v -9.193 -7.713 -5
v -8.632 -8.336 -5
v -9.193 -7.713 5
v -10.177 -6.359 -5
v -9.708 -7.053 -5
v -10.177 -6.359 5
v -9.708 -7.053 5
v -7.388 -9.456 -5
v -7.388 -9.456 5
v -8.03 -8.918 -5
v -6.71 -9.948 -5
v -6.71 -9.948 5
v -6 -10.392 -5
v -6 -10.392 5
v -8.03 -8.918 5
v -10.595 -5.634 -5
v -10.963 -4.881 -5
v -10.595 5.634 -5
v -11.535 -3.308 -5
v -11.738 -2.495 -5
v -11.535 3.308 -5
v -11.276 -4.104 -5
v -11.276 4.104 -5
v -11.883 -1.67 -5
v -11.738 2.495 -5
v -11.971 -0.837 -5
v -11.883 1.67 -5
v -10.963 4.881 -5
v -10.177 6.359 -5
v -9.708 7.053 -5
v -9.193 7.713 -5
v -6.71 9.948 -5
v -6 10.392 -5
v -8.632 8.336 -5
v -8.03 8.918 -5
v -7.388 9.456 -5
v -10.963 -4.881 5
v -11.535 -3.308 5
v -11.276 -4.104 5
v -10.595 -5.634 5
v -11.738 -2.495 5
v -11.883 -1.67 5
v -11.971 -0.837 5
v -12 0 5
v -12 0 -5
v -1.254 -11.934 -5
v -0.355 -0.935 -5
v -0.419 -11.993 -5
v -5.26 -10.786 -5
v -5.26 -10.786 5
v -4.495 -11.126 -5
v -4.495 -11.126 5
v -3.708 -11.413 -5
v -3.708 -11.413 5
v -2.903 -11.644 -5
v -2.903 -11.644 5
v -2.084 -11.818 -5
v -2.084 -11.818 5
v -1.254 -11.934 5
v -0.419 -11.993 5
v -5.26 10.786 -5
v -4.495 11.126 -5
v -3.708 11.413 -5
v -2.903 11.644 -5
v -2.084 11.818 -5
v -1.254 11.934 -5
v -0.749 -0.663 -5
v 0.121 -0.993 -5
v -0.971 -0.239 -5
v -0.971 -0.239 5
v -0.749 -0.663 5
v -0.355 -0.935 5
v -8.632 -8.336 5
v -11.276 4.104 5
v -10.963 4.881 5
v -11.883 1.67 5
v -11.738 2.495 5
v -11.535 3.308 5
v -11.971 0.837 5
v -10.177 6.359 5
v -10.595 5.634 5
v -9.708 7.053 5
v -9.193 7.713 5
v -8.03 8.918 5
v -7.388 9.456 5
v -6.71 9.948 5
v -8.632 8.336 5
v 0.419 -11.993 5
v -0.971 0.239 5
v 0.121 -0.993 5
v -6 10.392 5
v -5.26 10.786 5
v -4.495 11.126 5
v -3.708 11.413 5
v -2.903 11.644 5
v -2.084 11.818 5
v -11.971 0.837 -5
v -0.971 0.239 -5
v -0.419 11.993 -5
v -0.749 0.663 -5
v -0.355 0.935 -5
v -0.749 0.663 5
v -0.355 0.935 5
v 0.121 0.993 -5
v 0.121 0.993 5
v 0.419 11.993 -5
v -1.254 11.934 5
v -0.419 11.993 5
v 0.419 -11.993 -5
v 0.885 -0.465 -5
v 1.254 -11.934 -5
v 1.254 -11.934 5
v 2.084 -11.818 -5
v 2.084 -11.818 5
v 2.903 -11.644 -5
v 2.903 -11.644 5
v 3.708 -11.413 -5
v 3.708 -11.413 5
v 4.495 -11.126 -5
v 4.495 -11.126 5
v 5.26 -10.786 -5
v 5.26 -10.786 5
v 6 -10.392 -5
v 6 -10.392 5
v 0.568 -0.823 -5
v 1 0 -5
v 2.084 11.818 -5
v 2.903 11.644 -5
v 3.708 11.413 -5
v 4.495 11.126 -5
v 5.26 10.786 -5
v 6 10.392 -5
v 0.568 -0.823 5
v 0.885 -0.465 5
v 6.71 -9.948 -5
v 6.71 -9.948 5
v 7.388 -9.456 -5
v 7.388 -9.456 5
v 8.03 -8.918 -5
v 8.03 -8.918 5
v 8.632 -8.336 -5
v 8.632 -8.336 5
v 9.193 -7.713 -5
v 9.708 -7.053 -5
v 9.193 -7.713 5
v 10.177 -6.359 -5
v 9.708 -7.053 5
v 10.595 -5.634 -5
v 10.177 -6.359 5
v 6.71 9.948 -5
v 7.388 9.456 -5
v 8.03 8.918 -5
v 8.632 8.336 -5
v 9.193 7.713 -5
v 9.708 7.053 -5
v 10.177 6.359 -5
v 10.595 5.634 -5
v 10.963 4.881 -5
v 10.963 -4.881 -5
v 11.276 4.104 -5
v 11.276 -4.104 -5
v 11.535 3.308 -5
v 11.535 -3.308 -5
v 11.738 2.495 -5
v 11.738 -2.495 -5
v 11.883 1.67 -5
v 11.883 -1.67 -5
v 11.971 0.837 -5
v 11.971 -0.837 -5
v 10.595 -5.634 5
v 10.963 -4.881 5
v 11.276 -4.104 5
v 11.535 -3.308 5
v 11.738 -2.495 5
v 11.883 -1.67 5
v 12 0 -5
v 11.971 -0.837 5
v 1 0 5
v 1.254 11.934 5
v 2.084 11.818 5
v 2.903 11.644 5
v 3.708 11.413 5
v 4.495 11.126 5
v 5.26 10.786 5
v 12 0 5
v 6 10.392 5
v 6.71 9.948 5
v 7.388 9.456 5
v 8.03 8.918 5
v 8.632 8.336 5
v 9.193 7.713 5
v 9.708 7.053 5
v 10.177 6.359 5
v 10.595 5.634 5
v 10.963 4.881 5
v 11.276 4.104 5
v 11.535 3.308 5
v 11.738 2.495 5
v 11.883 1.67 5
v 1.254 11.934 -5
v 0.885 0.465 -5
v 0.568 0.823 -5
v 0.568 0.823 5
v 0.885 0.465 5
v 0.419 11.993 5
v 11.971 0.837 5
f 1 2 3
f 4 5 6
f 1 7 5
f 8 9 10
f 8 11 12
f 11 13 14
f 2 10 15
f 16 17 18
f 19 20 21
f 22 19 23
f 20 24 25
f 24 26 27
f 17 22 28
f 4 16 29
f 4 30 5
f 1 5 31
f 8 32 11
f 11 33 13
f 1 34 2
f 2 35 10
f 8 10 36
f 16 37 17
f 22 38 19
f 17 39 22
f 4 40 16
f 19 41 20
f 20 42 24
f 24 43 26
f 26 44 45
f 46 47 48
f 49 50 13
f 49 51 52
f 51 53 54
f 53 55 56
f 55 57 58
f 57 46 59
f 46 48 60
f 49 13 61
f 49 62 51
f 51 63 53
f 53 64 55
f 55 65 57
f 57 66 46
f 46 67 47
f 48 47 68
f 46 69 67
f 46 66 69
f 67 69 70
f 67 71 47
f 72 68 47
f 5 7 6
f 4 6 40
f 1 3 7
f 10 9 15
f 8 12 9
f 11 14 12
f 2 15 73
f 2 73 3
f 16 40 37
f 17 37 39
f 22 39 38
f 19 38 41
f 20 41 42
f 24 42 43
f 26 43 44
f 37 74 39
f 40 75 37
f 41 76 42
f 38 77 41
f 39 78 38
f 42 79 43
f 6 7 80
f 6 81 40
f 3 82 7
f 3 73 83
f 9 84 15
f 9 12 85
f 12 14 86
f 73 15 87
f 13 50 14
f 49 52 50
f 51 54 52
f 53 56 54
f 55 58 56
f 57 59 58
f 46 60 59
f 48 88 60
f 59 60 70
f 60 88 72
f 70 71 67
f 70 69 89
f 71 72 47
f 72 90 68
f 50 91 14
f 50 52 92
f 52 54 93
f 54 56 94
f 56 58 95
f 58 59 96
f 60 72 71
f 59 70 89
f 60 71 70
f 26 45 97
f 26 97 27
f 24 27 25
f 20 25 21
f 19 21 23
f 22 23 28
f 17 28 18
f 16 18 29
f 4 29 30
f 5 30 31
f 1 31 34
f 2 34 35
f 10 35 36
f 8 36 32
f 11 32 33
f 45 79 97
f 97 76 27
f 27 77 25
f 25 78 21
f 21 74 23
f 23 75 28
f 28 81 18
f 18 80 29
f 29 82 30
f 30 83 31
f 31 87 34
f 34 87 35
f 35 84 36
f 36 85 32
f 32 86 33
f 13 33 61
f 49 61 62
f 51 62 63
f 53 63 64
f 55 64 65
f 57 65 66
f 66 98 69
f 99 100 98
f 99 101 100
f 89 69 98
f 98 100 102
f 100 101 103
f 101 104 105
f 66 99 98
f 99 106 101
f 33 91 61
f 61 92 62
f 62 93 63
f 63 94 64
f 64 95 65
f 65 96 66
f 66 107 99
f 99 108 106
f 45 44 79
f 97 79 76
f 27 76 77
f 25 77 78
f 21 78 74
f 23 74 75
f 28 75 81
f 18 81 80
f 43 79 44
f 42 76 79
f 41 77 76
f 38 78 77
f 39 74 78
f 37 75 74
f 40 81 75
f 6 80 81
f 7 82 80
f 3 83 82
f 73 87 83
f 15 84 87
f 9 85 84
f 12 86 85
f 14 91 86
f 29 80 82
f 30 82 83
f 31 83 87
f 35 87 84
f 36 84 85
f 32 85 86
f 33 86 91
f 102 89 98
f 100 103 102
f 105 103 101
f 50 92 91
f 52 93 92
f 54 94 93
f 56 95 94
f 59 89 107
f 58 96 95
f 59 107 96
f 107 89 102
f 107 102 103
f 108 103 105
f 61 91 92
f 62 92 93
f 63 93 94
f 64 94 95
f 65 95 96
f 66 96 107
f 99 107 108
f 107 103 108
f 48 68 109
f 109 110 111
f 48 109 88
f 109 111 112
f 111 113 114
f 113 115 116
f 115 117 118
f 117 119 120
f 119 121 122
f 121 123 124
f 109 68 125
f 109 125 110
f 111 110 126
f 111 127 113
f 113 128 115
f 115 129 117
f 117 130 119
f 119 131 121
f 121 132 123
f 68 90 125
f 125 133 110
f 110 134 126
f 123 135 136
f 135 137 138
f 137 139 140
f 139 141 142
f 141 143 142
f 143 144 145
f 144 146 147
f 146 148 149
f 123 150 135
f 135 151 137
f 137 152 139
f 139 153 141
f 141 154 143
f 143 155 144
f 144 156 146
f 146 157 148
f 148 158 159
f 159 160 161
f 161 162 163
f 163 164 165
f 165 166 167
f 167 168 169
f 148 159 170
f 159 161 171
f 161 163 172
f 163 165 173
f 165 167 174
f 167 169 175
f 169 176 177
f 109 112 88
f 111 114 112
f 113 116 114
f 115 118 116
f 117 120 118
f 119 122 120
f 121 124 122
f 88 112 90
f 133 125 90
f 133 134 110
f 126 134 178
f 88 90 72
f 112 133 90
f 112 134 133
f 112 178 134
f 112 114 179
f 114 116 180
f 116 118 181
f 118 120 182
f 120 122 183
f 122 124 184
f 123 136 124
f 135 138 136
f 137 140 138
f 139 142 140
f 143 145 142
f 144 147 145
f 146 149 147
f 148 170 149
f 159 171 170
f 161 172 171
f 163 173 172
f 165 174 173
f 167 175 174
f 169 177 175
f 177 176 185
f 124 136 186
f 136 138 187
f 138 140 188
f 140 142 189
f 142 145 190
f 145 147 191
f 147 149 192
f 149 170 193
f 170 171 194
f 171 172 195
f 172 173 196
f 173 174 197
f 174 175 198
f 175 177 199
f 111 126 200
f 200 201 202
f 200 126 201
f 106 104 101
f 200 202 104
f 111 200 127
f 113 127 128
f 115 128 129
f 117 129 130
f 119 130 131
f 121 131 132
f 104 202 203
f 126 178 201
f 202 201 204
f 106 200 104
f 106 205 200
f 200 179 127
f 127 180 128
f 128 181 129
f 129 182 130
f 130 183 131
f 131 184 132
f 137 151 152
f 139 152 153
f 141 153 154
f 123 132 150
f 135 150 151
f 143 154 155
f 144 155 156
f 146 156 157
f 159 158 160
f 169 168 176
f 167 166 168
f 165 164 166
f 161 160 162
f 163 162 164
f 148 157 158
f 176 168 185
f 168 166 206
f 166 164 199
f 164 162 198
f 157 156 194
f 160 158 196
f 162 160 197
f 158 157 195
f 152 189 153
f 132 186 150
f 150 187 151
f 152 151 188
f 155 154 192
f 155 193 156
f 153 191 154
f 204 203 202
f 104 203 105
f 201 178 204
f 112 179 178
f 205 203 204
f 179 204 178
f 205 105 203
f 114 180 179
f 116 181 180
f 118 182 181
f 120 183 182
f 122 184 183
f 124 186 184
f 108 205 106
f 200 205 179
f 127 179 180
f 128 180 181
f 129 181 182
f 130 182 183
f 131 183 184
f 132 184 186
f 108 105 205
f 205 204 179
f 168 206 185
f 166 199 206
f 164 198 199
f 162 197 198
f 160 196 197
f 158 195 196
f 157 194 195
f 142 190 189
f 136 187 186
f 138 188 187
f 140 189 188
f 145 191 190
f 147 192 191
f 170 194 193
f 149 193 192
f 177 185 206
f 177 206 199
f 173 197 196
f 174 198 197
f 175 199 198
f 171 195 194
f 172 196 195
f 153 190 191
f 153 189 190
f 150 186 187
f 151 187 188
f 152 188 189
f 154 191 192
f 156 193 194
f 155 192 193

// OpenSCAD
// file: ../lib/lib.scad
// Shared helpers. Include AFTER params.scad (needs TOL, M3_* etc.).
$fa = 4; $fs = 0.5;

module rrect(size, r) {            // 2D rounded rectangle, centred
    r2 = min(r, min(size[0], size[1]) / 2 - 0.001);
    offset(r = r2) square([size[0] - 2 * r2, size[1] - 2 * r2], center = true);
}
module rbox(size, r, center_xy = true) {   // box with rounded vertical edges
    translate(center_xy ? [0, 0, 0] : [size[0] / 2, size[1] / 2, 0])
        linear_extrude(size[2]) rrect([size[0], size[1]], r);
}
module rbox_at(x0, x1, y0, y1, z0, z1, r = 0.01) {
    translate([(x0 + x1) / 2, (y0 + y1) / 2, z0]) rbox([x1 - x0, y1 - y0, z1 - z0], r);
}
module box_at(x0, x1, y0, y1, z0, z1) { translate([x0, y0, z0]) cube([x1 - x0, y1 - y0, z1 - z0]); }

module ring(ro, ri, h) { difference() { cylinder(r = ro, h = h); translate([0, 0, -1]) cylinder(r = ri, h = h + 2); } }
module ring_sector(ro, ri, h, a0, a1) {
    intersection() {
        ring(ro, ri, h);
        linear_extrude(h) polygon(concat([[0, 0]], [for (a = [a0 : (a1 - a0) / 24 : a1]) 2 * ro * [cos(a), sin(a)]]));
    }
}
// teardrop hole along an axis lying horizontal (axis = Y after rotation), printable w/o support
module teardrop2d(d) { union() { circle(d = d); rotate(45) square(d / 2); } }
// vertical heat-set insert hole, opening at z=0 going +z (depth l)
module insert_hole(l = M3_INSERT_L) { translate([0, 0, -EPS]) cylinder(d = M3_INSERT_D, h = l + EPS); }
module m3_clear(l) { translate([0, 0, -EPS]) cylinder(d = M3_CLEAR, h = l + 2 * EPS); }
module m3_csk(l) {  // countersunk clearance from z=0 upward, head at z=0 side
    translate([0, 0, -EPS]) { cylinder(d = M3_CLEAR, h = l + 2 * EPS); cylinder(d1 = 6.4, d2 = M3_CLEAR, h = 1.7); }
}
module card2d() { rrect([CARD_L, CARD_W], CARD_R); }
module card_at(cy, z) { translate([0, cy, z]) linear_extrude(CARD_T) card2d(); }

// ---- gears ----
function _inv(a) = tan(a) - a * PI_ / 180;           // involute function, a in deg
function _invpt(rb, r, ang0, s) = let(al = acos(rb / r), th = ang0 - s * (_inv(al) * 180 / PI_)) [r * cos(th), r * sin(th)];
module involute_gear2d(m, z, pa = 20, clearance = 0.05) {
    rp = m * z / 2; rb = rp * cos(pa); ra = rp + m - clearance; rf = rp - 1.25 * m;
    half = 90 / z + _inv(pa) * 180 / PI_;            // tooth half-angle at base (deg)
    n = 8;
    rs = [for (i = [0 : n]) max(rb, rf) + (ra - max(rb, rf)) * i / n];
    union() {
        circle(r = rf, $fn = z * 4);
        for (k = [0 : z - 1]) rotate(k * 360 / z) polygon(concat(
            [[rf * cos(-half), rf * sin(-half)]],
            [for (r = rs) let(p = _invpt(rb, r, half, 1)) [p[0], -p[1]]],
            [for (i = [n : -1 : 0]) _invpt(rb, rs[i], half, 1)],
            [[rf * cos(half), rf * sin(half)]]));
    }
}
// straight gear rack (2D in XY: teeth along +x, pointing -y, pitch line at y=0)
module gear_rack2d(m, len, back = 3) {
    p = PI_ * m; ad = m; de = 1.25 * m; t = tan(20);
    n = ceil(len / p) + 1;
    intersection() {
        union() {
            translate([0, de]) square([len, back]);
            for (i = [0 : n]) translate([i * p - p / 4, 0]) polygon([
                [-(p / 4 + de * t), de + 0.01], [p / 4 + de * t + 0.01, de + 0.01],
                [p / 4 - ad * t, -ad], [-(p / 4 - ad * t), -ad] ]);
        }
        translate([0, -ad - 1]) square([len, ad + de + back + 2]);
    }
}
// GT2 belt-tooth profile ring (teeth outward), 2D
module gt2_ring2d(n, r_land, ri) {
    union() {
        difference() { circle(r = r_land + 0.01, $fn = n * 2); circle(r = ri, $fn = n * 2); }
        for (k = [0 : n - 1]) rotate(k * 360 / n)
            translate([r_land, 0]) hull() { translate([-0.2, 0]) square([0.2, 1.0], center = true); translate([0.25, 0]) circle(r = 0.5, $fn = 12); }
    }
}
// main file
// Vendor model: Rubber drive wheel 24x10 mm, 2 mm bore (launcher). Local: axis Z, centred.
include <../params.scad>
include <../lib/lib.scad>
module vendor_wheel_launcher() color([0.12,0.12,0.12]) difference() { translate([0, 0, -WHEEL_W / 2]) cylinder(d = WHEEL_D, h = WHEEL_W); cylinder(d = 2, h = 20, center = true); }

vendor_wheel_launcher();
